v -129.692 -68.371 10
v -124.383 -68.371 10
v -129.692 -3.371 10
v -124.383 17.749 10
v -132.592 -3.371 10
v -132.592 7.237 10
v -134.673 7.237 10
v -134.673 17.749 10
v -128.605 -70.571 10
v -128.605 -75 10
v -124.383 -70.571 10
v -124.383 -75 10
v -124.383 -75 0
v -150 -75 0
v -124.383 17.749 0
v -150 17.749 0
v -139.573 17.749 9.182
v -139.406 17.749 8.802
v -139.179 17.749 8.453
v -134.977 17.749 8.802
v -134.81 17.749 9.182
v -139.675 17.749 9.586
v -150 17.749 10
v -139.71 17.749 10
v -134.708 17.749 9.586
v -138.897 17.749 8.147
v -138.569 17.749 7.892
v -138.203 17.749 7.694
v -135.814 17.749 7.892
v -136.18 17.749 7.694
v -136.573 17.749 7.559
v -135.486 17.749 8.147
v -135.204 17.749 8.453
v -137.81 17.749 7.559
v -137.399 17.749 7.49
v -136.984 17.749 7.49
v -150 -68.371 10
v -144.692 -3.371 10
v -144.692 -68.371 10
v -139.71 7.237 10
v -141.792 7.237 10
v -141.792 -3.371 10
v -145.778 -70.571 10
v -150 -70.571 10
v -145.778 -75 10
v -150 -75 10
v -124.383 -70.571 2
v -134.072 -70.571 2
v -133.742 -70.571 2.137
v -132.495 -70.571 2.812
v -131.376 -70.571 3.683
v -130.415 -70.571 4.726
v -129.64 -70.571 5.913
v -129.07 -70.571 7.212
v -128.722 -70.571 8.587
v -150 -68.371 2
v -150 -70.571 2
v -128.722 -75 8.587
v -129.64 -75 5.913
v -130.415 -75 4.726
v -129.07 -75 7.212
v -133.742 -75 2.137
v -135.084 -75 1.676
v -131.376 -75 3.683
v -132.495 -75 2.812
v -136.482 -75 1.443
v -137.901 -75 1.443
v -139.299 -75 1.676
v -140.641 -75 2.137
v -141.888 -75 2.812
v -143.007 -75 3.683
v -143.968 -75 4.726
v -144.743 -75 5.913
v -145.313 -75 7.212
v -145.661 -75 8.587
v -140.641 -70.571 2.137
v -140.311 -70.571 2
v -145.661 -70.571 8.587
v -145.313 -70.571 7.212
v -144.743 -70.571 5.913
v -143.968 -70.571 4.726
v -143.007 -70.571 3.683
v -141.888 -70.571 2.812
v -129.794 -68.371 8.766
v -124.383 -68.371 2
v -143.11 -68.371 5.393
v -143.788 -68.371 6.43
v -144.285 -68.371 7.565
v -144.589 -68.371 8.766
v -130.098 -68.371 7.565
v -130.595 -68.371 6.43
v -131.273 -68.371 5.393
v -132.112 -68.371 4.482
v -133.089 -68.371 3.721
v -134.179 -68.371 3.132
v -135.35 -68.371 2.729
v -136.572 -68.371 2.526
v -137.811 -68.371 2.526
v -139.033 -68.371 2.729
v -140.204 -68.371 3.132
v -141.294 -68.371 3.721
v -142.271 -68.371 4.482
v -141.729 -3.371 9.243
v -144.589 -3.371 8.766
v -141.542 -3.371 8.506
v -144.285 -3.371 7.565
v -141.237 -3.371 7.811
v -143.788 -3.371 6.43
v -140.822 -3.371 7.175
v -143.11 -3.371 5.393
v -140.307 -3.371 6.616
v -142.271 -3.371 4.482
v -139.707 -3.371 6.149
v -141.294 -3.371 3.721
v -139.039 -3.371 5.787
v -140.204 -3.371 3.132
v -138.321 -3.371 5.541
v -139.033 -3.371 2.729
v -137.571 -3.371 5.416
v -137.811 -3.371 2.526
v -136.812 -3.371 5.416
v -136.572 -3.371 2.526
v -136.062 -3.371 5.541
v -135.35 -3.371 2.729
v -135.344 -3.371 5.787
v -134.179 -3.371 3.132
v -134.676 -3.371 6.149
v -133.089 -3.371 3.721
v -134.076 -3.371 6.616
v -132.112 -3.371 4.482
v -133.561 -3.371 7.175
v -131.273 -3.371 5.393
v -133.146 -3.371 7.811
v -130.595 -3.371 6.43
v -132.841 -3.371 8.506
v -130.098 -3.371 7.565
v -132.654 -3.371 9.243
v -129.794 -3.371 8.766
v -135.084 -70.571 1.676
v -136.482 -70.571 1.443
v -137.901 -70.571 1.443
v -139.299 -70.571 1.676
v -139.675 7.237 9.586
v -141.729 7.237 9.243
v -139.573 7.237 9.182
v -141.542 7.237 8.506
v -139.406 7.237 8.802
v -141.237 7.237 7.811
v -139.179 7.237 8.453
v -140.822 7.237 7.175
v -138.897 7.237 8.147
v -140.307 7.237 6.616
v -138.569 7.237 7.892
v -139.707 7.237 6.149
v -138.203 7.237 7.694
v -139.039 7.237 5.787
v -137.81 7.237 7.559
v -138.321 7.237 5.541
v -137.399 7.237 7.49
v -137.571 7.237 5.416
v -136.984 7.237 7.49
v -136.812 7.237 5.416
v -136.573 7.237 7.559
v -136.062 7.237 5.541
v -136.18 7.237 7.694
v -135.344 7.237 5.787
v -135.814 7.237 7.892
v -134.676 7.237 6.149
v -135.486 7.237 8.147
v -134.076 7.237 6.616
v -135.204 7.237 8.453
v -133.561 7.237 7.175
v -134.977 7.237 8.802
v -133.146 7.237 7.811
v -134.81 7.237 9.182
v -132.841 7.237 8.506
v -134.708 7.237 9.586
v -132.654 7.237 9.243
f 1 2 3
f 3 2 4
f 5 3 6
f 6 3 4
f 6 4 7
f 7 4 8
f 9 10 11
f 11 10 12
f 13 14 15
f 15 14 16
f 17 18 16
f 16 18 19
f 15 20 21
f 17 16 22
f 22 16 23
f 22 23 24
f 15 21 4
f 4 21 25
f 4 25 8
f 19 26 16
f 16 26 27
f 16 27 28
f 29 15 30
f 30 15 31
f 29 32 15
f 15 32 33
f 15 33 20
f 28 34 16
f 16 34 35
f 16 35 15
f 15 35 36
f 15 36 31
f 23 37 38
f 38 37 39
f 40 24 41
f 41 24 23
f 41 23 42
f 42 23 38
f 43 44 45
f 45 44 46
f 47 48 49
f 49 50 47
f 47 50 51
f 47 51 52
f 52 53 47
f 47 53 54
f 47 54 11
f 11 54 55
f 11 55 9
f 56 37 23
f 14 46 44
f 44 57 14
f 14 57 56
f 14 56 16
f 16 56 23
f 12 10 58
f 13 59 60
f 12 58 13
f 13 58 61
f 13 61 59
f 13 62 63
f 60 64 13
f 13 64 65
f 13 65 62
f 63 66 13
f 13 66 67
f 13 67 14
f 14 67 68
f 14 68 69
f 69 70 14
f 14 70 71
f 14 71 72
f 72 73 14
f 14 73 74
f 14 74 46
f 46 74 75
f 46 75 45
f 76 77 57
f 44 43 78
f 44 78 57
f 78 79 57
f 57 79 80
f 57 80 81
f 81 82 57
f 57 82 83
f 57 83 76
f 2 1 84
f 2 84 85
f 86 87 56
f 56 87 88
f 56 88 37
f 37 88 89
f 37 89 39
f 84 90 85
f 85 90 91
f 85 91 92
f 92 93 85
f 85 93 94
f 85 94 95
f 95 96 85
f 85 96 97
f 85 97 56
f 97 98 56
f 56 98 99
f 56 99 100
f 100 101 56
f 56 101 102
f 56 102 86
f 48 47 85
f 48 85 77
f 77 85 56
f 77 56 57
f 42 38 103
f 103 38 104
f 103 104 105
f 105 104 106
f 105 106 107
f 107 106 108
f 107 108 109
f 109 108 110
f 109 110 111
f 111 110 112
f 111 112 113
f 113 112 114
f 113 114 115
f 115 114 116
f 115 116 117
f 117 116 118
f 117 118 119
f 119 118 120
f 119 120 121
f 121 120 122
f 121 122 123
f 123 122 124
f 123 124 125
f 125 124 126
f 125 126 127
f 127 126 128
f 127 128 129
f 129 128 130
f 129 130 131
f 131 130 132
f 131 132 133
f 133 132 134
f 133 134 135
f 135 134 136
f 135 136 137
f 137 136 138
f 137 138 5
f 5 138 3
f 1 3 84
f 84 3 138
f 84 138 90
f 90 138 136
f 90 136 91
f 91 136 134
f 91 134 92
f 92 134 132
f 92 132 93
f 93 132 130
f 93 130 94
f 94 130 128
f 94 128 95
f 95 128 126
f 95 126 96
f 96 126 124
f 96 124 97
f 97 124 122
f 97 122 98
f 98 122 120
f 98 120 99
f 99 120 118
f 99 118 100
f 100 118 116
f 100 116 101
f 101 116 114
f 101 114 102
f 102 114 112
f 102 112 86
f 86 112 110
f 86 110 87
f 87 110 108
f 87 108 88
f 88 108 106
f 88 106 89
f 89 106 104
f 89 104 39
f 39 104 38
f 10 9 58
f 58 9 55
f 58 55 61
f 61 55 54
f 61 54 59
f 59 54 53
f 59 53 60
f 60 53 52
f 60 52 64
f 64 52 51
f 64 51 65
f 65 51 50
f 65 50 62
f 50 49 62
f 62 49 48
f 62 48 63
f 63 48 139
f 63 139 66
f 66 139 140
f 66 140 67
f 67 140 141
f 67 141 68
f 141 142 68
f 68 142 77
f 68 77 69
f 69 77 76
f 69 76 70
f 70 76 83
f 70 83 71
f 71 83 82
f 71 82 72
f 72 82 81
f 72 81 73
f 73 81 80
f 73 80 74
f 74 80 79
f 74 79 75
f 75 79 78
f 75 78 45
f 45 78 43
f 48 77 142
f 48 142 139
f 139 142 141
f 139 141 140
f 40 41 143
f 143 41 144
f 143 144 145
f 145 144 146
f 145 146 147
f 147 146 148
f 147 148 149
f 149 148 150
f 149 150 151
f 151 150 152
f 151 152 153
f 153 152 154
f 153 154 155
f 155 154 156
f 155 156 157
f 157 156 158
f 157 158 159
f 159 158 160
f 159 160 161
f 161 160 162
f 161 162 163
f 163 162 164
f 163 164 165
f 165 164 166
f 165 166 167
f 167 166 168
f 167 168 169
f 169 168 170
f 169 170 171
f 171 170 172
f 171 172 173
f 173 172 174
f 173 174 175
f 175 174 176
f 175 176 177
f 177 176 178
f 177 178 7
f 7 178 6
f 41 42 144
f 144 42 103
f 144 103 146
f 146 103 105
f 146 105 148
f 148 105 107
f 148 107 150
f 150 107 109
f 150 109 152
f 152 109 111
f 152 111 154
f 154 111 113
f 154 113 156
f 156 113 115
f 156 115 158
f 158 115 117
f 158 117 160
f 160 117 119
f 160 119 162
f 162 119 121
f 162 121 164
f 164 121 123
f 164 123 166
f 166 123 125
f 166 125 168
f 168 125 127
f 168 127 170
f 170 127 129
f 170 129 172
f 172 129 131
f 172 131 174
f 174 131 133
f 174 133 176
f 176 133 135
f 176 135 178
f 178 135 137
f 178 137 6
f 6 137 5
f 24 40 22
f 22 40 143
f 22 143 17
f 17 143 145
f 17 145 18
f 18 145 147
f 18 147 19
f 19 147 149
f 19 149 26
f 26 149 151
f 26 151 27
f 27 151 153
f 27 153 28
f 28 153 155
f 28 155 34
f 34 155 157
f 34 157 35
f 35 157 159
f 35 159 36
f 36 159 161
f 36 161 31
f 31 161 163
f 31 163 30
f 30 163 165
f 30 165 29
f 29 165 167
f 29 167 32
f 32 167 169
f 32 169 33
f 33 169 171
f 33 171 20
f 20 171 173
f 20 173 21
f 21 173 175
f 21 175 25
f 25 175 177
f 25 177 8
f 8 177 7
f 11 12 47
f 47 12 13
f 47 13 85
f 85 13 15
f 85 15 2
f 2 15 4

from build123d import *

# Parameters (mm, degrees)
SKETCH1_W               = 150
SKETCH1_H               = 300
BOSS_EXTRUDE1_DEPTH     = 10
FLANGE_SLIT_W           = 26
FLANGE_SLIT_H           = 2.2
FLANGE_SLOT_DEPTH       = 8
SKETCH3_W               = 7.5
SKETCH3_H               = 65
SKETCH6_W               = 57.250839866
SKETCH6_H               = 300
CUT_EXTRUDE2_DEPTH      = 169.002976164
SKETCH7_W               = 8.586676089
SKETCH7_H               = 4.428918394
CUT_EXTRUDE3_DEPTH      = 169.002976164
CUT_EXTRUDE3_DEPTH_BACK = 169.002976164
SKETCH15_W              = 274.383047756
SKETCH15_H              = 92.749160134


with BuildPart() as part:
    # Sketch1 → Boss-Extrude1 (new body)
    with BuildSketch(Plane(origin=(0, 0, 0), x_dir=(0, 1, 0), z_dir=(0, 0, 1))):
        Rectangle(SKETCH1_W, SKETCH1_H)
    extrude(amount=BOSS_EXTRUDE1_DEPTH)

    # flange slit → Flange Slot (cut)
    with BuildSketch(Plane.XY.offset(10)):
        with Locations((-137.383047756, -69.471081606)):
            Rectangle(FLANGE_SLIT_W, FLANGE_SLIT_H)
    extrude(amount=-FLANGE_SLOT_DEPTH, mode=Mode.SUBTRACT)

    # Sketch3 → Syringe Body Slot (revolve, cut)
    with BuildSketch(Plane.XY.offset(10)):
        with Locations((-140.941523878, -35.871081606)):
            Rectangle(SKETCH3_W, SKETCH3_H)
    revolve(axis=Axis((-137.191523878, 75, 10), (0, -1, 0)), mode=Mode.SUBTRACT)

    # Sketch6 → Cut-Extrude2 (cut, through all)
    with BuildSketch(Plane(origin=(0, 0, 10), x_dir=(0, -1, 0), z_dir=(0, 0, 1))):
        with Locations((-46.374580067, 0)):
            Rectangle(SKETCH6_W, SKETCH6_H)
    extrude(amount=-CUT_EXTRUDE2_DEPTH, mode=Mode.SUBTRACT)

    # Sketch7 → Plunger Slot (revolve, cut)
    with BuildSketch(Plane.XY.offset(10)):
        with Locations((-141.484861922, -72.785540803)):
            Rectangle(SKETCH7_W, SKETCH7_H)
    revolve(axis=Axis((-137.191523878, -70.571081606, 10), (0, -1, 0)), mode=Mode.SUBTRACT)

    # Sketch8 → Cut-Revolve1 (revolve, cut)
    with BuildSketch(Plane.XY.offset(10)):
        Polygon((-137.191523878, -3.371081606), (-141.791523878, -3.371081606), (-141.791523878, 7.236534378), (-139.709650935, 7.236534378), (-139.709650935, 17.749160134), (-137.191523878, 17.749160134), (-137.191523878, 4.628918394), align=None)
    revolve(axis=Axis((-137.191523878, -3.371081606, 10), (0, 1, 0)), mode=Mode.SUBTRACT)

    # Sketch15 → Cut-Extrude3 (cut, two sides: drawn at the far end of the back side and taken through both)
    with BuildSketch(Plane.XY.offset(10).offset(-CUT_EXTRUDE3_DEPTH_BACK)):
        with Locations((12.808476122, -28.625419933)):
            Rectangle(SKETCH15_W, SKETCH15_H)
    extrude(amount=CUT_EXTRUDE3_DEPTH + CUT_EXTRUDE3_DEPTH_BACK, mode=Mode.SUBTRACT)


solid = part.part
